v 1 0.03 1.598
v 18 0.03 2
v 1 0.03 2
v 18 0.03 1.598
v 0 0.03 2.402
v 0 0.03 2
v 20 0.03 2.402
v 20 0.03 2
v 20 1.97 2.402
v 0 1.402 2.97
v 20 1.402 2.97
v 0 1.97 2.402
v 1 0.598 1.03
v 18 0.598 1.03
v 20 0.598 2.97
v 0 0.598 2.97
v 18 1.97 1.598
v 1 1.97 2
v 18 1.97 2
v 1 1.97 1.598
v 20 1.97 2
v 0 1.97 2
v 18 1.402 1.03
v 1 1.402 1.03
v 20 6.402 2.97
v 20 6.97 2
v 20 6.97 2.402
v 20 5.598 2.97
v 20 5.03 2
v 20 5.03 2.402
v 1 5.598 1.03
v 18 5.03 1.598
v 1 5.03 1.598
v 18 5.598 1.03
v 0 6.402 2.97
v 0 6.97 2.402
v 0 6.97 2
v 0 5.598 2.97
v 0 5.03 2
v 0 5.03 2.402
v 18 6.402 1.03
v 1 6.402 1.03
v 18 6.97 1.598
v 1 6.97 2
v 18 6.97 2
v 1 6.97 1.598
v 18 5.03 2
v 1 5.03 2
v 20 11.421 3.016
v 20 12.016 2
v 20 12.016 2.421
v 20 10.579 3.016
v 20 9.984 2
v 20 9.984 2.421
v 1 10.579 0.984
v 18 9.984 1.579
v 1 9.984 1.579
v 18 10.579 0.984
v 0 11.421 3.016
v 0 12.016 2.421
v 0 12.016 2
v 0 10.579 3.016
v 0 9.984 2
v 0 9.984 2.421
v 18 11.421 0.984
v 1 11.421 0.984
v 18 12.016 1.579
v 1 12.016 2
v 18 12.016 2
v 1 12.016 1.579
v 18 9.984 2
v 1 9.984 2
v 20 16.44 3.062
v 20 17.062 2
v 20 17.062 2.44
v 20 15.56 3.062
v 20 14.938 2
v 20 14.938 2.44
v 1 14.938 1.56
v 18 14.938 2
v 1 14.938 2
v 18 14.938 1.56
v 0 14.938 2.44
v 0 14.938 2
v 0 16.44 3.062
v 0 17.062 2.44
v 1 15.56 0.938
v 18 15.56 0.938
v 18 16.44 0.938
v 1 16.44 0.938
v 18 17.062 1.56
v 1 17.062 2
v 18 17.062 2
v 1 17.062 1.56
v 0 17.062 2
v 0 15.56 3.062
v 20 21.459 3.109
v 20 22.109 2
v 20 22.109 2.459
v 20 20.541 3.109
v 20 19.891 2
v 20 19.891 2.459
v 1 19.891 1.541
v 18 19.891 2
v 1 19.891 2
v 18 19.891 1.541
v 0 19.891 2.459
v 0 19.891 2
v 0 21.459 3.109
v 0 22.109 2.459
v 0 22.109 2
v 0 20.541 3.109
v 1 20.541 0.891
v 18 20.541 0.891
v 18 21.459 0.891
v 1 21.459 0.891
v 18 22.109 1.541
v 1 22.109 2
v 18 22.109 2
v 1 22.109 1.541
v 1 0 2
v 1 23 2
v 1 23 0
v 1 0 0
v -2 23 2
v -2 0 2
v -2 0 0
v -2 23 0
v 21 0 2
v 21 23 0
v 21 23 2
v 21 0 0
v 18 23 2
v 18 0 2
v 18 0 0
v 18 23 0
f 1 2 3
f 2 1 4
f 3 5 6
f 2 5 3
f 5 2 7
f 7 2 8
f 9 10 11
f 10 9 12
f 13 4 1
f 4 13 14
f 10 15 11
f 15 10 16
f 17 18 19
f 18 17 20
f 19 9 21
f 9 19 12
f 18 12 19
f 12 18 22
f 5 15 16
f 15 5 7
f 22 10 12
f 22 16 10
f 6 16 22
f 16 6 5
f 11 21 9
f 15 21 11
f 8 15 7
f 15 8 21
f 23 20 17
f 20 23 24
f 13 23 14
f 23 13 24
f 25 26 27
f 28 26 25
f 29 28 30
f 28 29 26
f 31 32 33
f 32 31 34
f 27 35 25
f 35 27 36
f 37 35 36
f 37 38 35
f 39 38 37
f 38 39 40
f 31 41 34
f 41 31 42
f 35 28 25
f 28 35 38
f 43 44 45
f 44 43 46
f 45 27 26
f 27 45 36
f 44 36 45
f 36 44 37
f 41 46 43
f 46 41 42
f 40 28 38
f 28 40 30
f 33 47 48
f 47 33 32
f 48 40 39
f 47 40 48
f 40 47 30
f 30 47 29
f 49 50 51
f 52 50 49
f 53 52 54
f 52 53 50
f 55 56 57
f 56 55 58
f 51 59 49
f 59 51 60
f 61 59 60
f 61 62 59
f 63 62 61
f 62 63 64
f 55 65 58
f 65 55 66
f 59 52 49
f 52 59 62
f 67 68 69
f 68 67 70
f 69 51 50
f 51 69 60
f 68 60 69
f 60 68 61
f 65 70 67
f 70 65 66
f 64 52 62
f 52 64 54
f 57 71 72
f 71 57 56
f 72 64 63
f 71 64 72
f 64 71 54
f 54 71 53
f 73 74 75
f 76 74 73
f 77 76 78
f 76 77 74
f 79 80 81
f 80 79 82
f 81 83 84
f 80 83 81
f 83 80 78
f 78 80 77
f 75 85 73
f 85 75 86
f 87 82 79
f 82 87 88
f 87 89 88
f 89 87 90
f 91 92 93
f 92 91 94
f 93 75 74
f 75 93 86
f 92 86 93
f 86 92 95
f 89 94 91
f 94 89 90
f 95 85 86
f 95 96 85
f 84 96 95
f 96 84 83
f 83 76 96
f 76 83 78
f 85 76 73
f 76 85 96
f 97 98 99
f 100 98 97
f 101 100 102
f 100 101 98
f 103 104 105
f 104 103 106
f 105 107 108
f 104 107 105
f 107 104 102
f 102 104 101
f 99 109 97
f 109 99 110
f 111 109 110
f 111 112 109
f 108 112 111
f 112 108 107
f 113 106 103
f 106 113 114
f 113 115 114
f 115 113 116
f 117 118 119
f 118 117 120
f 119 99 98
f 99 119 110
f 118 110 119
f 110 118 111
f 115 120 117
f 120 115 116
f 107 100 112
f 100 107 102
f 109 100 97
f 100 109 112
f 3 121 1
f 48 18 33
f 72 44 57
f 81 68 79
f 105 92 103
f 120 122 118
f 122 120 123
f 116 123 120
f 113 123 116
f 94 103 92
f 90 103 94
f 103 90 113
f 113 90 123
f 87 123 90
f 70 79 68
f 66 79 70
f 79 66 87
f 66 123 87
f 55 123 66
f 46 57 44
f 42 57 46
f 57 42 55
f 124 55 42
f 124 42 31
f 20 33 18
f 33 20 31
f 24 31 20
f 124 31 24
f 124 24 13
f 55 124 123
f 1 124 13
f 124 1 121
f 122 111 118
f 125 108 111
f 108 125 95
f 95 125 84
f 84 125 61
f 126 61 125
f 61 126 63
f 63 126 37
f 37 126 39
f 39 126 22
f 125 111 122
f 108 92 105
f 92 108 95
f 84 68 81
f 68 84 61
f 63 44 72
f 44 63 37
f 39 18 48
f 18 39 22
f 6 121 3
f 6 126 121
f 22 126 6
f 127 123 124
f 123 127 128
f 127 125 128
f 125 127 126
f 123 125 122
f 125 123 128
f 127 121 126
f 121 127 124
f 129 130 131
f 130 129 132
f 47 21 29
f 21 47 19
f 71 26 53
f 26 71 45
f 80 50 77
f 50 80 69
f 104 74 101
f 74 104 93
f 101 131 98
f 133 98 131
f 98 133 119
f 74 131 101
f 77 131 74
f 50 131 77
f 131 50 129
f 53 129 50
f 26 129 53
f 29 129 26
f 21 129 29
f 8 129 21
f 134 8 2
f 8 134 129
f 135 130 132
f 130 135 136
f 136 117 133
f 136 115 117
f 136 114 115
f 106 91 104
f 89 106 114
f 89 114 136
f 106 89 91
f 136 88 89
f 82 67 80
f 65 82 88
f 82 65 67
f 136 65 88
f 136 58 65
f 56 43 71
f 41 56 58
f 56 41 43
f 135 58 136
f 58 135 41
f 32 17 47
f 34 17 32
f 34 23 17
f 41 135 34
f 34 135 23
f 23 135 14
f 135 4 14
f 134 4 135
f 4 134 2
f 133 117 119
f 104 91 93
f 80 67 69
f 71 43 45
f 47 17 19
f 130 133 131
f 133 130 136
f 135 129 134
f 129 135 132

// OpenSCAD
radius_vector = [1.05, 1.1, 1.15, 1.2];

translate([0,1,2])
for (i=[0:5:20]) {
    translate([0,i,0])
    pin(radius_vector[(i == 0 ? 0 : (i/5) - 1)]);
}

translate([-2,0,0])
cube([3,23,2]);
translate([18,0,0])
cube([3,23,2]);

module pin(r) {
    rotate([0,90,0])
    rotate([0,0,67.5])
    cylinder(h=20, r=r, $fn=8);
}
